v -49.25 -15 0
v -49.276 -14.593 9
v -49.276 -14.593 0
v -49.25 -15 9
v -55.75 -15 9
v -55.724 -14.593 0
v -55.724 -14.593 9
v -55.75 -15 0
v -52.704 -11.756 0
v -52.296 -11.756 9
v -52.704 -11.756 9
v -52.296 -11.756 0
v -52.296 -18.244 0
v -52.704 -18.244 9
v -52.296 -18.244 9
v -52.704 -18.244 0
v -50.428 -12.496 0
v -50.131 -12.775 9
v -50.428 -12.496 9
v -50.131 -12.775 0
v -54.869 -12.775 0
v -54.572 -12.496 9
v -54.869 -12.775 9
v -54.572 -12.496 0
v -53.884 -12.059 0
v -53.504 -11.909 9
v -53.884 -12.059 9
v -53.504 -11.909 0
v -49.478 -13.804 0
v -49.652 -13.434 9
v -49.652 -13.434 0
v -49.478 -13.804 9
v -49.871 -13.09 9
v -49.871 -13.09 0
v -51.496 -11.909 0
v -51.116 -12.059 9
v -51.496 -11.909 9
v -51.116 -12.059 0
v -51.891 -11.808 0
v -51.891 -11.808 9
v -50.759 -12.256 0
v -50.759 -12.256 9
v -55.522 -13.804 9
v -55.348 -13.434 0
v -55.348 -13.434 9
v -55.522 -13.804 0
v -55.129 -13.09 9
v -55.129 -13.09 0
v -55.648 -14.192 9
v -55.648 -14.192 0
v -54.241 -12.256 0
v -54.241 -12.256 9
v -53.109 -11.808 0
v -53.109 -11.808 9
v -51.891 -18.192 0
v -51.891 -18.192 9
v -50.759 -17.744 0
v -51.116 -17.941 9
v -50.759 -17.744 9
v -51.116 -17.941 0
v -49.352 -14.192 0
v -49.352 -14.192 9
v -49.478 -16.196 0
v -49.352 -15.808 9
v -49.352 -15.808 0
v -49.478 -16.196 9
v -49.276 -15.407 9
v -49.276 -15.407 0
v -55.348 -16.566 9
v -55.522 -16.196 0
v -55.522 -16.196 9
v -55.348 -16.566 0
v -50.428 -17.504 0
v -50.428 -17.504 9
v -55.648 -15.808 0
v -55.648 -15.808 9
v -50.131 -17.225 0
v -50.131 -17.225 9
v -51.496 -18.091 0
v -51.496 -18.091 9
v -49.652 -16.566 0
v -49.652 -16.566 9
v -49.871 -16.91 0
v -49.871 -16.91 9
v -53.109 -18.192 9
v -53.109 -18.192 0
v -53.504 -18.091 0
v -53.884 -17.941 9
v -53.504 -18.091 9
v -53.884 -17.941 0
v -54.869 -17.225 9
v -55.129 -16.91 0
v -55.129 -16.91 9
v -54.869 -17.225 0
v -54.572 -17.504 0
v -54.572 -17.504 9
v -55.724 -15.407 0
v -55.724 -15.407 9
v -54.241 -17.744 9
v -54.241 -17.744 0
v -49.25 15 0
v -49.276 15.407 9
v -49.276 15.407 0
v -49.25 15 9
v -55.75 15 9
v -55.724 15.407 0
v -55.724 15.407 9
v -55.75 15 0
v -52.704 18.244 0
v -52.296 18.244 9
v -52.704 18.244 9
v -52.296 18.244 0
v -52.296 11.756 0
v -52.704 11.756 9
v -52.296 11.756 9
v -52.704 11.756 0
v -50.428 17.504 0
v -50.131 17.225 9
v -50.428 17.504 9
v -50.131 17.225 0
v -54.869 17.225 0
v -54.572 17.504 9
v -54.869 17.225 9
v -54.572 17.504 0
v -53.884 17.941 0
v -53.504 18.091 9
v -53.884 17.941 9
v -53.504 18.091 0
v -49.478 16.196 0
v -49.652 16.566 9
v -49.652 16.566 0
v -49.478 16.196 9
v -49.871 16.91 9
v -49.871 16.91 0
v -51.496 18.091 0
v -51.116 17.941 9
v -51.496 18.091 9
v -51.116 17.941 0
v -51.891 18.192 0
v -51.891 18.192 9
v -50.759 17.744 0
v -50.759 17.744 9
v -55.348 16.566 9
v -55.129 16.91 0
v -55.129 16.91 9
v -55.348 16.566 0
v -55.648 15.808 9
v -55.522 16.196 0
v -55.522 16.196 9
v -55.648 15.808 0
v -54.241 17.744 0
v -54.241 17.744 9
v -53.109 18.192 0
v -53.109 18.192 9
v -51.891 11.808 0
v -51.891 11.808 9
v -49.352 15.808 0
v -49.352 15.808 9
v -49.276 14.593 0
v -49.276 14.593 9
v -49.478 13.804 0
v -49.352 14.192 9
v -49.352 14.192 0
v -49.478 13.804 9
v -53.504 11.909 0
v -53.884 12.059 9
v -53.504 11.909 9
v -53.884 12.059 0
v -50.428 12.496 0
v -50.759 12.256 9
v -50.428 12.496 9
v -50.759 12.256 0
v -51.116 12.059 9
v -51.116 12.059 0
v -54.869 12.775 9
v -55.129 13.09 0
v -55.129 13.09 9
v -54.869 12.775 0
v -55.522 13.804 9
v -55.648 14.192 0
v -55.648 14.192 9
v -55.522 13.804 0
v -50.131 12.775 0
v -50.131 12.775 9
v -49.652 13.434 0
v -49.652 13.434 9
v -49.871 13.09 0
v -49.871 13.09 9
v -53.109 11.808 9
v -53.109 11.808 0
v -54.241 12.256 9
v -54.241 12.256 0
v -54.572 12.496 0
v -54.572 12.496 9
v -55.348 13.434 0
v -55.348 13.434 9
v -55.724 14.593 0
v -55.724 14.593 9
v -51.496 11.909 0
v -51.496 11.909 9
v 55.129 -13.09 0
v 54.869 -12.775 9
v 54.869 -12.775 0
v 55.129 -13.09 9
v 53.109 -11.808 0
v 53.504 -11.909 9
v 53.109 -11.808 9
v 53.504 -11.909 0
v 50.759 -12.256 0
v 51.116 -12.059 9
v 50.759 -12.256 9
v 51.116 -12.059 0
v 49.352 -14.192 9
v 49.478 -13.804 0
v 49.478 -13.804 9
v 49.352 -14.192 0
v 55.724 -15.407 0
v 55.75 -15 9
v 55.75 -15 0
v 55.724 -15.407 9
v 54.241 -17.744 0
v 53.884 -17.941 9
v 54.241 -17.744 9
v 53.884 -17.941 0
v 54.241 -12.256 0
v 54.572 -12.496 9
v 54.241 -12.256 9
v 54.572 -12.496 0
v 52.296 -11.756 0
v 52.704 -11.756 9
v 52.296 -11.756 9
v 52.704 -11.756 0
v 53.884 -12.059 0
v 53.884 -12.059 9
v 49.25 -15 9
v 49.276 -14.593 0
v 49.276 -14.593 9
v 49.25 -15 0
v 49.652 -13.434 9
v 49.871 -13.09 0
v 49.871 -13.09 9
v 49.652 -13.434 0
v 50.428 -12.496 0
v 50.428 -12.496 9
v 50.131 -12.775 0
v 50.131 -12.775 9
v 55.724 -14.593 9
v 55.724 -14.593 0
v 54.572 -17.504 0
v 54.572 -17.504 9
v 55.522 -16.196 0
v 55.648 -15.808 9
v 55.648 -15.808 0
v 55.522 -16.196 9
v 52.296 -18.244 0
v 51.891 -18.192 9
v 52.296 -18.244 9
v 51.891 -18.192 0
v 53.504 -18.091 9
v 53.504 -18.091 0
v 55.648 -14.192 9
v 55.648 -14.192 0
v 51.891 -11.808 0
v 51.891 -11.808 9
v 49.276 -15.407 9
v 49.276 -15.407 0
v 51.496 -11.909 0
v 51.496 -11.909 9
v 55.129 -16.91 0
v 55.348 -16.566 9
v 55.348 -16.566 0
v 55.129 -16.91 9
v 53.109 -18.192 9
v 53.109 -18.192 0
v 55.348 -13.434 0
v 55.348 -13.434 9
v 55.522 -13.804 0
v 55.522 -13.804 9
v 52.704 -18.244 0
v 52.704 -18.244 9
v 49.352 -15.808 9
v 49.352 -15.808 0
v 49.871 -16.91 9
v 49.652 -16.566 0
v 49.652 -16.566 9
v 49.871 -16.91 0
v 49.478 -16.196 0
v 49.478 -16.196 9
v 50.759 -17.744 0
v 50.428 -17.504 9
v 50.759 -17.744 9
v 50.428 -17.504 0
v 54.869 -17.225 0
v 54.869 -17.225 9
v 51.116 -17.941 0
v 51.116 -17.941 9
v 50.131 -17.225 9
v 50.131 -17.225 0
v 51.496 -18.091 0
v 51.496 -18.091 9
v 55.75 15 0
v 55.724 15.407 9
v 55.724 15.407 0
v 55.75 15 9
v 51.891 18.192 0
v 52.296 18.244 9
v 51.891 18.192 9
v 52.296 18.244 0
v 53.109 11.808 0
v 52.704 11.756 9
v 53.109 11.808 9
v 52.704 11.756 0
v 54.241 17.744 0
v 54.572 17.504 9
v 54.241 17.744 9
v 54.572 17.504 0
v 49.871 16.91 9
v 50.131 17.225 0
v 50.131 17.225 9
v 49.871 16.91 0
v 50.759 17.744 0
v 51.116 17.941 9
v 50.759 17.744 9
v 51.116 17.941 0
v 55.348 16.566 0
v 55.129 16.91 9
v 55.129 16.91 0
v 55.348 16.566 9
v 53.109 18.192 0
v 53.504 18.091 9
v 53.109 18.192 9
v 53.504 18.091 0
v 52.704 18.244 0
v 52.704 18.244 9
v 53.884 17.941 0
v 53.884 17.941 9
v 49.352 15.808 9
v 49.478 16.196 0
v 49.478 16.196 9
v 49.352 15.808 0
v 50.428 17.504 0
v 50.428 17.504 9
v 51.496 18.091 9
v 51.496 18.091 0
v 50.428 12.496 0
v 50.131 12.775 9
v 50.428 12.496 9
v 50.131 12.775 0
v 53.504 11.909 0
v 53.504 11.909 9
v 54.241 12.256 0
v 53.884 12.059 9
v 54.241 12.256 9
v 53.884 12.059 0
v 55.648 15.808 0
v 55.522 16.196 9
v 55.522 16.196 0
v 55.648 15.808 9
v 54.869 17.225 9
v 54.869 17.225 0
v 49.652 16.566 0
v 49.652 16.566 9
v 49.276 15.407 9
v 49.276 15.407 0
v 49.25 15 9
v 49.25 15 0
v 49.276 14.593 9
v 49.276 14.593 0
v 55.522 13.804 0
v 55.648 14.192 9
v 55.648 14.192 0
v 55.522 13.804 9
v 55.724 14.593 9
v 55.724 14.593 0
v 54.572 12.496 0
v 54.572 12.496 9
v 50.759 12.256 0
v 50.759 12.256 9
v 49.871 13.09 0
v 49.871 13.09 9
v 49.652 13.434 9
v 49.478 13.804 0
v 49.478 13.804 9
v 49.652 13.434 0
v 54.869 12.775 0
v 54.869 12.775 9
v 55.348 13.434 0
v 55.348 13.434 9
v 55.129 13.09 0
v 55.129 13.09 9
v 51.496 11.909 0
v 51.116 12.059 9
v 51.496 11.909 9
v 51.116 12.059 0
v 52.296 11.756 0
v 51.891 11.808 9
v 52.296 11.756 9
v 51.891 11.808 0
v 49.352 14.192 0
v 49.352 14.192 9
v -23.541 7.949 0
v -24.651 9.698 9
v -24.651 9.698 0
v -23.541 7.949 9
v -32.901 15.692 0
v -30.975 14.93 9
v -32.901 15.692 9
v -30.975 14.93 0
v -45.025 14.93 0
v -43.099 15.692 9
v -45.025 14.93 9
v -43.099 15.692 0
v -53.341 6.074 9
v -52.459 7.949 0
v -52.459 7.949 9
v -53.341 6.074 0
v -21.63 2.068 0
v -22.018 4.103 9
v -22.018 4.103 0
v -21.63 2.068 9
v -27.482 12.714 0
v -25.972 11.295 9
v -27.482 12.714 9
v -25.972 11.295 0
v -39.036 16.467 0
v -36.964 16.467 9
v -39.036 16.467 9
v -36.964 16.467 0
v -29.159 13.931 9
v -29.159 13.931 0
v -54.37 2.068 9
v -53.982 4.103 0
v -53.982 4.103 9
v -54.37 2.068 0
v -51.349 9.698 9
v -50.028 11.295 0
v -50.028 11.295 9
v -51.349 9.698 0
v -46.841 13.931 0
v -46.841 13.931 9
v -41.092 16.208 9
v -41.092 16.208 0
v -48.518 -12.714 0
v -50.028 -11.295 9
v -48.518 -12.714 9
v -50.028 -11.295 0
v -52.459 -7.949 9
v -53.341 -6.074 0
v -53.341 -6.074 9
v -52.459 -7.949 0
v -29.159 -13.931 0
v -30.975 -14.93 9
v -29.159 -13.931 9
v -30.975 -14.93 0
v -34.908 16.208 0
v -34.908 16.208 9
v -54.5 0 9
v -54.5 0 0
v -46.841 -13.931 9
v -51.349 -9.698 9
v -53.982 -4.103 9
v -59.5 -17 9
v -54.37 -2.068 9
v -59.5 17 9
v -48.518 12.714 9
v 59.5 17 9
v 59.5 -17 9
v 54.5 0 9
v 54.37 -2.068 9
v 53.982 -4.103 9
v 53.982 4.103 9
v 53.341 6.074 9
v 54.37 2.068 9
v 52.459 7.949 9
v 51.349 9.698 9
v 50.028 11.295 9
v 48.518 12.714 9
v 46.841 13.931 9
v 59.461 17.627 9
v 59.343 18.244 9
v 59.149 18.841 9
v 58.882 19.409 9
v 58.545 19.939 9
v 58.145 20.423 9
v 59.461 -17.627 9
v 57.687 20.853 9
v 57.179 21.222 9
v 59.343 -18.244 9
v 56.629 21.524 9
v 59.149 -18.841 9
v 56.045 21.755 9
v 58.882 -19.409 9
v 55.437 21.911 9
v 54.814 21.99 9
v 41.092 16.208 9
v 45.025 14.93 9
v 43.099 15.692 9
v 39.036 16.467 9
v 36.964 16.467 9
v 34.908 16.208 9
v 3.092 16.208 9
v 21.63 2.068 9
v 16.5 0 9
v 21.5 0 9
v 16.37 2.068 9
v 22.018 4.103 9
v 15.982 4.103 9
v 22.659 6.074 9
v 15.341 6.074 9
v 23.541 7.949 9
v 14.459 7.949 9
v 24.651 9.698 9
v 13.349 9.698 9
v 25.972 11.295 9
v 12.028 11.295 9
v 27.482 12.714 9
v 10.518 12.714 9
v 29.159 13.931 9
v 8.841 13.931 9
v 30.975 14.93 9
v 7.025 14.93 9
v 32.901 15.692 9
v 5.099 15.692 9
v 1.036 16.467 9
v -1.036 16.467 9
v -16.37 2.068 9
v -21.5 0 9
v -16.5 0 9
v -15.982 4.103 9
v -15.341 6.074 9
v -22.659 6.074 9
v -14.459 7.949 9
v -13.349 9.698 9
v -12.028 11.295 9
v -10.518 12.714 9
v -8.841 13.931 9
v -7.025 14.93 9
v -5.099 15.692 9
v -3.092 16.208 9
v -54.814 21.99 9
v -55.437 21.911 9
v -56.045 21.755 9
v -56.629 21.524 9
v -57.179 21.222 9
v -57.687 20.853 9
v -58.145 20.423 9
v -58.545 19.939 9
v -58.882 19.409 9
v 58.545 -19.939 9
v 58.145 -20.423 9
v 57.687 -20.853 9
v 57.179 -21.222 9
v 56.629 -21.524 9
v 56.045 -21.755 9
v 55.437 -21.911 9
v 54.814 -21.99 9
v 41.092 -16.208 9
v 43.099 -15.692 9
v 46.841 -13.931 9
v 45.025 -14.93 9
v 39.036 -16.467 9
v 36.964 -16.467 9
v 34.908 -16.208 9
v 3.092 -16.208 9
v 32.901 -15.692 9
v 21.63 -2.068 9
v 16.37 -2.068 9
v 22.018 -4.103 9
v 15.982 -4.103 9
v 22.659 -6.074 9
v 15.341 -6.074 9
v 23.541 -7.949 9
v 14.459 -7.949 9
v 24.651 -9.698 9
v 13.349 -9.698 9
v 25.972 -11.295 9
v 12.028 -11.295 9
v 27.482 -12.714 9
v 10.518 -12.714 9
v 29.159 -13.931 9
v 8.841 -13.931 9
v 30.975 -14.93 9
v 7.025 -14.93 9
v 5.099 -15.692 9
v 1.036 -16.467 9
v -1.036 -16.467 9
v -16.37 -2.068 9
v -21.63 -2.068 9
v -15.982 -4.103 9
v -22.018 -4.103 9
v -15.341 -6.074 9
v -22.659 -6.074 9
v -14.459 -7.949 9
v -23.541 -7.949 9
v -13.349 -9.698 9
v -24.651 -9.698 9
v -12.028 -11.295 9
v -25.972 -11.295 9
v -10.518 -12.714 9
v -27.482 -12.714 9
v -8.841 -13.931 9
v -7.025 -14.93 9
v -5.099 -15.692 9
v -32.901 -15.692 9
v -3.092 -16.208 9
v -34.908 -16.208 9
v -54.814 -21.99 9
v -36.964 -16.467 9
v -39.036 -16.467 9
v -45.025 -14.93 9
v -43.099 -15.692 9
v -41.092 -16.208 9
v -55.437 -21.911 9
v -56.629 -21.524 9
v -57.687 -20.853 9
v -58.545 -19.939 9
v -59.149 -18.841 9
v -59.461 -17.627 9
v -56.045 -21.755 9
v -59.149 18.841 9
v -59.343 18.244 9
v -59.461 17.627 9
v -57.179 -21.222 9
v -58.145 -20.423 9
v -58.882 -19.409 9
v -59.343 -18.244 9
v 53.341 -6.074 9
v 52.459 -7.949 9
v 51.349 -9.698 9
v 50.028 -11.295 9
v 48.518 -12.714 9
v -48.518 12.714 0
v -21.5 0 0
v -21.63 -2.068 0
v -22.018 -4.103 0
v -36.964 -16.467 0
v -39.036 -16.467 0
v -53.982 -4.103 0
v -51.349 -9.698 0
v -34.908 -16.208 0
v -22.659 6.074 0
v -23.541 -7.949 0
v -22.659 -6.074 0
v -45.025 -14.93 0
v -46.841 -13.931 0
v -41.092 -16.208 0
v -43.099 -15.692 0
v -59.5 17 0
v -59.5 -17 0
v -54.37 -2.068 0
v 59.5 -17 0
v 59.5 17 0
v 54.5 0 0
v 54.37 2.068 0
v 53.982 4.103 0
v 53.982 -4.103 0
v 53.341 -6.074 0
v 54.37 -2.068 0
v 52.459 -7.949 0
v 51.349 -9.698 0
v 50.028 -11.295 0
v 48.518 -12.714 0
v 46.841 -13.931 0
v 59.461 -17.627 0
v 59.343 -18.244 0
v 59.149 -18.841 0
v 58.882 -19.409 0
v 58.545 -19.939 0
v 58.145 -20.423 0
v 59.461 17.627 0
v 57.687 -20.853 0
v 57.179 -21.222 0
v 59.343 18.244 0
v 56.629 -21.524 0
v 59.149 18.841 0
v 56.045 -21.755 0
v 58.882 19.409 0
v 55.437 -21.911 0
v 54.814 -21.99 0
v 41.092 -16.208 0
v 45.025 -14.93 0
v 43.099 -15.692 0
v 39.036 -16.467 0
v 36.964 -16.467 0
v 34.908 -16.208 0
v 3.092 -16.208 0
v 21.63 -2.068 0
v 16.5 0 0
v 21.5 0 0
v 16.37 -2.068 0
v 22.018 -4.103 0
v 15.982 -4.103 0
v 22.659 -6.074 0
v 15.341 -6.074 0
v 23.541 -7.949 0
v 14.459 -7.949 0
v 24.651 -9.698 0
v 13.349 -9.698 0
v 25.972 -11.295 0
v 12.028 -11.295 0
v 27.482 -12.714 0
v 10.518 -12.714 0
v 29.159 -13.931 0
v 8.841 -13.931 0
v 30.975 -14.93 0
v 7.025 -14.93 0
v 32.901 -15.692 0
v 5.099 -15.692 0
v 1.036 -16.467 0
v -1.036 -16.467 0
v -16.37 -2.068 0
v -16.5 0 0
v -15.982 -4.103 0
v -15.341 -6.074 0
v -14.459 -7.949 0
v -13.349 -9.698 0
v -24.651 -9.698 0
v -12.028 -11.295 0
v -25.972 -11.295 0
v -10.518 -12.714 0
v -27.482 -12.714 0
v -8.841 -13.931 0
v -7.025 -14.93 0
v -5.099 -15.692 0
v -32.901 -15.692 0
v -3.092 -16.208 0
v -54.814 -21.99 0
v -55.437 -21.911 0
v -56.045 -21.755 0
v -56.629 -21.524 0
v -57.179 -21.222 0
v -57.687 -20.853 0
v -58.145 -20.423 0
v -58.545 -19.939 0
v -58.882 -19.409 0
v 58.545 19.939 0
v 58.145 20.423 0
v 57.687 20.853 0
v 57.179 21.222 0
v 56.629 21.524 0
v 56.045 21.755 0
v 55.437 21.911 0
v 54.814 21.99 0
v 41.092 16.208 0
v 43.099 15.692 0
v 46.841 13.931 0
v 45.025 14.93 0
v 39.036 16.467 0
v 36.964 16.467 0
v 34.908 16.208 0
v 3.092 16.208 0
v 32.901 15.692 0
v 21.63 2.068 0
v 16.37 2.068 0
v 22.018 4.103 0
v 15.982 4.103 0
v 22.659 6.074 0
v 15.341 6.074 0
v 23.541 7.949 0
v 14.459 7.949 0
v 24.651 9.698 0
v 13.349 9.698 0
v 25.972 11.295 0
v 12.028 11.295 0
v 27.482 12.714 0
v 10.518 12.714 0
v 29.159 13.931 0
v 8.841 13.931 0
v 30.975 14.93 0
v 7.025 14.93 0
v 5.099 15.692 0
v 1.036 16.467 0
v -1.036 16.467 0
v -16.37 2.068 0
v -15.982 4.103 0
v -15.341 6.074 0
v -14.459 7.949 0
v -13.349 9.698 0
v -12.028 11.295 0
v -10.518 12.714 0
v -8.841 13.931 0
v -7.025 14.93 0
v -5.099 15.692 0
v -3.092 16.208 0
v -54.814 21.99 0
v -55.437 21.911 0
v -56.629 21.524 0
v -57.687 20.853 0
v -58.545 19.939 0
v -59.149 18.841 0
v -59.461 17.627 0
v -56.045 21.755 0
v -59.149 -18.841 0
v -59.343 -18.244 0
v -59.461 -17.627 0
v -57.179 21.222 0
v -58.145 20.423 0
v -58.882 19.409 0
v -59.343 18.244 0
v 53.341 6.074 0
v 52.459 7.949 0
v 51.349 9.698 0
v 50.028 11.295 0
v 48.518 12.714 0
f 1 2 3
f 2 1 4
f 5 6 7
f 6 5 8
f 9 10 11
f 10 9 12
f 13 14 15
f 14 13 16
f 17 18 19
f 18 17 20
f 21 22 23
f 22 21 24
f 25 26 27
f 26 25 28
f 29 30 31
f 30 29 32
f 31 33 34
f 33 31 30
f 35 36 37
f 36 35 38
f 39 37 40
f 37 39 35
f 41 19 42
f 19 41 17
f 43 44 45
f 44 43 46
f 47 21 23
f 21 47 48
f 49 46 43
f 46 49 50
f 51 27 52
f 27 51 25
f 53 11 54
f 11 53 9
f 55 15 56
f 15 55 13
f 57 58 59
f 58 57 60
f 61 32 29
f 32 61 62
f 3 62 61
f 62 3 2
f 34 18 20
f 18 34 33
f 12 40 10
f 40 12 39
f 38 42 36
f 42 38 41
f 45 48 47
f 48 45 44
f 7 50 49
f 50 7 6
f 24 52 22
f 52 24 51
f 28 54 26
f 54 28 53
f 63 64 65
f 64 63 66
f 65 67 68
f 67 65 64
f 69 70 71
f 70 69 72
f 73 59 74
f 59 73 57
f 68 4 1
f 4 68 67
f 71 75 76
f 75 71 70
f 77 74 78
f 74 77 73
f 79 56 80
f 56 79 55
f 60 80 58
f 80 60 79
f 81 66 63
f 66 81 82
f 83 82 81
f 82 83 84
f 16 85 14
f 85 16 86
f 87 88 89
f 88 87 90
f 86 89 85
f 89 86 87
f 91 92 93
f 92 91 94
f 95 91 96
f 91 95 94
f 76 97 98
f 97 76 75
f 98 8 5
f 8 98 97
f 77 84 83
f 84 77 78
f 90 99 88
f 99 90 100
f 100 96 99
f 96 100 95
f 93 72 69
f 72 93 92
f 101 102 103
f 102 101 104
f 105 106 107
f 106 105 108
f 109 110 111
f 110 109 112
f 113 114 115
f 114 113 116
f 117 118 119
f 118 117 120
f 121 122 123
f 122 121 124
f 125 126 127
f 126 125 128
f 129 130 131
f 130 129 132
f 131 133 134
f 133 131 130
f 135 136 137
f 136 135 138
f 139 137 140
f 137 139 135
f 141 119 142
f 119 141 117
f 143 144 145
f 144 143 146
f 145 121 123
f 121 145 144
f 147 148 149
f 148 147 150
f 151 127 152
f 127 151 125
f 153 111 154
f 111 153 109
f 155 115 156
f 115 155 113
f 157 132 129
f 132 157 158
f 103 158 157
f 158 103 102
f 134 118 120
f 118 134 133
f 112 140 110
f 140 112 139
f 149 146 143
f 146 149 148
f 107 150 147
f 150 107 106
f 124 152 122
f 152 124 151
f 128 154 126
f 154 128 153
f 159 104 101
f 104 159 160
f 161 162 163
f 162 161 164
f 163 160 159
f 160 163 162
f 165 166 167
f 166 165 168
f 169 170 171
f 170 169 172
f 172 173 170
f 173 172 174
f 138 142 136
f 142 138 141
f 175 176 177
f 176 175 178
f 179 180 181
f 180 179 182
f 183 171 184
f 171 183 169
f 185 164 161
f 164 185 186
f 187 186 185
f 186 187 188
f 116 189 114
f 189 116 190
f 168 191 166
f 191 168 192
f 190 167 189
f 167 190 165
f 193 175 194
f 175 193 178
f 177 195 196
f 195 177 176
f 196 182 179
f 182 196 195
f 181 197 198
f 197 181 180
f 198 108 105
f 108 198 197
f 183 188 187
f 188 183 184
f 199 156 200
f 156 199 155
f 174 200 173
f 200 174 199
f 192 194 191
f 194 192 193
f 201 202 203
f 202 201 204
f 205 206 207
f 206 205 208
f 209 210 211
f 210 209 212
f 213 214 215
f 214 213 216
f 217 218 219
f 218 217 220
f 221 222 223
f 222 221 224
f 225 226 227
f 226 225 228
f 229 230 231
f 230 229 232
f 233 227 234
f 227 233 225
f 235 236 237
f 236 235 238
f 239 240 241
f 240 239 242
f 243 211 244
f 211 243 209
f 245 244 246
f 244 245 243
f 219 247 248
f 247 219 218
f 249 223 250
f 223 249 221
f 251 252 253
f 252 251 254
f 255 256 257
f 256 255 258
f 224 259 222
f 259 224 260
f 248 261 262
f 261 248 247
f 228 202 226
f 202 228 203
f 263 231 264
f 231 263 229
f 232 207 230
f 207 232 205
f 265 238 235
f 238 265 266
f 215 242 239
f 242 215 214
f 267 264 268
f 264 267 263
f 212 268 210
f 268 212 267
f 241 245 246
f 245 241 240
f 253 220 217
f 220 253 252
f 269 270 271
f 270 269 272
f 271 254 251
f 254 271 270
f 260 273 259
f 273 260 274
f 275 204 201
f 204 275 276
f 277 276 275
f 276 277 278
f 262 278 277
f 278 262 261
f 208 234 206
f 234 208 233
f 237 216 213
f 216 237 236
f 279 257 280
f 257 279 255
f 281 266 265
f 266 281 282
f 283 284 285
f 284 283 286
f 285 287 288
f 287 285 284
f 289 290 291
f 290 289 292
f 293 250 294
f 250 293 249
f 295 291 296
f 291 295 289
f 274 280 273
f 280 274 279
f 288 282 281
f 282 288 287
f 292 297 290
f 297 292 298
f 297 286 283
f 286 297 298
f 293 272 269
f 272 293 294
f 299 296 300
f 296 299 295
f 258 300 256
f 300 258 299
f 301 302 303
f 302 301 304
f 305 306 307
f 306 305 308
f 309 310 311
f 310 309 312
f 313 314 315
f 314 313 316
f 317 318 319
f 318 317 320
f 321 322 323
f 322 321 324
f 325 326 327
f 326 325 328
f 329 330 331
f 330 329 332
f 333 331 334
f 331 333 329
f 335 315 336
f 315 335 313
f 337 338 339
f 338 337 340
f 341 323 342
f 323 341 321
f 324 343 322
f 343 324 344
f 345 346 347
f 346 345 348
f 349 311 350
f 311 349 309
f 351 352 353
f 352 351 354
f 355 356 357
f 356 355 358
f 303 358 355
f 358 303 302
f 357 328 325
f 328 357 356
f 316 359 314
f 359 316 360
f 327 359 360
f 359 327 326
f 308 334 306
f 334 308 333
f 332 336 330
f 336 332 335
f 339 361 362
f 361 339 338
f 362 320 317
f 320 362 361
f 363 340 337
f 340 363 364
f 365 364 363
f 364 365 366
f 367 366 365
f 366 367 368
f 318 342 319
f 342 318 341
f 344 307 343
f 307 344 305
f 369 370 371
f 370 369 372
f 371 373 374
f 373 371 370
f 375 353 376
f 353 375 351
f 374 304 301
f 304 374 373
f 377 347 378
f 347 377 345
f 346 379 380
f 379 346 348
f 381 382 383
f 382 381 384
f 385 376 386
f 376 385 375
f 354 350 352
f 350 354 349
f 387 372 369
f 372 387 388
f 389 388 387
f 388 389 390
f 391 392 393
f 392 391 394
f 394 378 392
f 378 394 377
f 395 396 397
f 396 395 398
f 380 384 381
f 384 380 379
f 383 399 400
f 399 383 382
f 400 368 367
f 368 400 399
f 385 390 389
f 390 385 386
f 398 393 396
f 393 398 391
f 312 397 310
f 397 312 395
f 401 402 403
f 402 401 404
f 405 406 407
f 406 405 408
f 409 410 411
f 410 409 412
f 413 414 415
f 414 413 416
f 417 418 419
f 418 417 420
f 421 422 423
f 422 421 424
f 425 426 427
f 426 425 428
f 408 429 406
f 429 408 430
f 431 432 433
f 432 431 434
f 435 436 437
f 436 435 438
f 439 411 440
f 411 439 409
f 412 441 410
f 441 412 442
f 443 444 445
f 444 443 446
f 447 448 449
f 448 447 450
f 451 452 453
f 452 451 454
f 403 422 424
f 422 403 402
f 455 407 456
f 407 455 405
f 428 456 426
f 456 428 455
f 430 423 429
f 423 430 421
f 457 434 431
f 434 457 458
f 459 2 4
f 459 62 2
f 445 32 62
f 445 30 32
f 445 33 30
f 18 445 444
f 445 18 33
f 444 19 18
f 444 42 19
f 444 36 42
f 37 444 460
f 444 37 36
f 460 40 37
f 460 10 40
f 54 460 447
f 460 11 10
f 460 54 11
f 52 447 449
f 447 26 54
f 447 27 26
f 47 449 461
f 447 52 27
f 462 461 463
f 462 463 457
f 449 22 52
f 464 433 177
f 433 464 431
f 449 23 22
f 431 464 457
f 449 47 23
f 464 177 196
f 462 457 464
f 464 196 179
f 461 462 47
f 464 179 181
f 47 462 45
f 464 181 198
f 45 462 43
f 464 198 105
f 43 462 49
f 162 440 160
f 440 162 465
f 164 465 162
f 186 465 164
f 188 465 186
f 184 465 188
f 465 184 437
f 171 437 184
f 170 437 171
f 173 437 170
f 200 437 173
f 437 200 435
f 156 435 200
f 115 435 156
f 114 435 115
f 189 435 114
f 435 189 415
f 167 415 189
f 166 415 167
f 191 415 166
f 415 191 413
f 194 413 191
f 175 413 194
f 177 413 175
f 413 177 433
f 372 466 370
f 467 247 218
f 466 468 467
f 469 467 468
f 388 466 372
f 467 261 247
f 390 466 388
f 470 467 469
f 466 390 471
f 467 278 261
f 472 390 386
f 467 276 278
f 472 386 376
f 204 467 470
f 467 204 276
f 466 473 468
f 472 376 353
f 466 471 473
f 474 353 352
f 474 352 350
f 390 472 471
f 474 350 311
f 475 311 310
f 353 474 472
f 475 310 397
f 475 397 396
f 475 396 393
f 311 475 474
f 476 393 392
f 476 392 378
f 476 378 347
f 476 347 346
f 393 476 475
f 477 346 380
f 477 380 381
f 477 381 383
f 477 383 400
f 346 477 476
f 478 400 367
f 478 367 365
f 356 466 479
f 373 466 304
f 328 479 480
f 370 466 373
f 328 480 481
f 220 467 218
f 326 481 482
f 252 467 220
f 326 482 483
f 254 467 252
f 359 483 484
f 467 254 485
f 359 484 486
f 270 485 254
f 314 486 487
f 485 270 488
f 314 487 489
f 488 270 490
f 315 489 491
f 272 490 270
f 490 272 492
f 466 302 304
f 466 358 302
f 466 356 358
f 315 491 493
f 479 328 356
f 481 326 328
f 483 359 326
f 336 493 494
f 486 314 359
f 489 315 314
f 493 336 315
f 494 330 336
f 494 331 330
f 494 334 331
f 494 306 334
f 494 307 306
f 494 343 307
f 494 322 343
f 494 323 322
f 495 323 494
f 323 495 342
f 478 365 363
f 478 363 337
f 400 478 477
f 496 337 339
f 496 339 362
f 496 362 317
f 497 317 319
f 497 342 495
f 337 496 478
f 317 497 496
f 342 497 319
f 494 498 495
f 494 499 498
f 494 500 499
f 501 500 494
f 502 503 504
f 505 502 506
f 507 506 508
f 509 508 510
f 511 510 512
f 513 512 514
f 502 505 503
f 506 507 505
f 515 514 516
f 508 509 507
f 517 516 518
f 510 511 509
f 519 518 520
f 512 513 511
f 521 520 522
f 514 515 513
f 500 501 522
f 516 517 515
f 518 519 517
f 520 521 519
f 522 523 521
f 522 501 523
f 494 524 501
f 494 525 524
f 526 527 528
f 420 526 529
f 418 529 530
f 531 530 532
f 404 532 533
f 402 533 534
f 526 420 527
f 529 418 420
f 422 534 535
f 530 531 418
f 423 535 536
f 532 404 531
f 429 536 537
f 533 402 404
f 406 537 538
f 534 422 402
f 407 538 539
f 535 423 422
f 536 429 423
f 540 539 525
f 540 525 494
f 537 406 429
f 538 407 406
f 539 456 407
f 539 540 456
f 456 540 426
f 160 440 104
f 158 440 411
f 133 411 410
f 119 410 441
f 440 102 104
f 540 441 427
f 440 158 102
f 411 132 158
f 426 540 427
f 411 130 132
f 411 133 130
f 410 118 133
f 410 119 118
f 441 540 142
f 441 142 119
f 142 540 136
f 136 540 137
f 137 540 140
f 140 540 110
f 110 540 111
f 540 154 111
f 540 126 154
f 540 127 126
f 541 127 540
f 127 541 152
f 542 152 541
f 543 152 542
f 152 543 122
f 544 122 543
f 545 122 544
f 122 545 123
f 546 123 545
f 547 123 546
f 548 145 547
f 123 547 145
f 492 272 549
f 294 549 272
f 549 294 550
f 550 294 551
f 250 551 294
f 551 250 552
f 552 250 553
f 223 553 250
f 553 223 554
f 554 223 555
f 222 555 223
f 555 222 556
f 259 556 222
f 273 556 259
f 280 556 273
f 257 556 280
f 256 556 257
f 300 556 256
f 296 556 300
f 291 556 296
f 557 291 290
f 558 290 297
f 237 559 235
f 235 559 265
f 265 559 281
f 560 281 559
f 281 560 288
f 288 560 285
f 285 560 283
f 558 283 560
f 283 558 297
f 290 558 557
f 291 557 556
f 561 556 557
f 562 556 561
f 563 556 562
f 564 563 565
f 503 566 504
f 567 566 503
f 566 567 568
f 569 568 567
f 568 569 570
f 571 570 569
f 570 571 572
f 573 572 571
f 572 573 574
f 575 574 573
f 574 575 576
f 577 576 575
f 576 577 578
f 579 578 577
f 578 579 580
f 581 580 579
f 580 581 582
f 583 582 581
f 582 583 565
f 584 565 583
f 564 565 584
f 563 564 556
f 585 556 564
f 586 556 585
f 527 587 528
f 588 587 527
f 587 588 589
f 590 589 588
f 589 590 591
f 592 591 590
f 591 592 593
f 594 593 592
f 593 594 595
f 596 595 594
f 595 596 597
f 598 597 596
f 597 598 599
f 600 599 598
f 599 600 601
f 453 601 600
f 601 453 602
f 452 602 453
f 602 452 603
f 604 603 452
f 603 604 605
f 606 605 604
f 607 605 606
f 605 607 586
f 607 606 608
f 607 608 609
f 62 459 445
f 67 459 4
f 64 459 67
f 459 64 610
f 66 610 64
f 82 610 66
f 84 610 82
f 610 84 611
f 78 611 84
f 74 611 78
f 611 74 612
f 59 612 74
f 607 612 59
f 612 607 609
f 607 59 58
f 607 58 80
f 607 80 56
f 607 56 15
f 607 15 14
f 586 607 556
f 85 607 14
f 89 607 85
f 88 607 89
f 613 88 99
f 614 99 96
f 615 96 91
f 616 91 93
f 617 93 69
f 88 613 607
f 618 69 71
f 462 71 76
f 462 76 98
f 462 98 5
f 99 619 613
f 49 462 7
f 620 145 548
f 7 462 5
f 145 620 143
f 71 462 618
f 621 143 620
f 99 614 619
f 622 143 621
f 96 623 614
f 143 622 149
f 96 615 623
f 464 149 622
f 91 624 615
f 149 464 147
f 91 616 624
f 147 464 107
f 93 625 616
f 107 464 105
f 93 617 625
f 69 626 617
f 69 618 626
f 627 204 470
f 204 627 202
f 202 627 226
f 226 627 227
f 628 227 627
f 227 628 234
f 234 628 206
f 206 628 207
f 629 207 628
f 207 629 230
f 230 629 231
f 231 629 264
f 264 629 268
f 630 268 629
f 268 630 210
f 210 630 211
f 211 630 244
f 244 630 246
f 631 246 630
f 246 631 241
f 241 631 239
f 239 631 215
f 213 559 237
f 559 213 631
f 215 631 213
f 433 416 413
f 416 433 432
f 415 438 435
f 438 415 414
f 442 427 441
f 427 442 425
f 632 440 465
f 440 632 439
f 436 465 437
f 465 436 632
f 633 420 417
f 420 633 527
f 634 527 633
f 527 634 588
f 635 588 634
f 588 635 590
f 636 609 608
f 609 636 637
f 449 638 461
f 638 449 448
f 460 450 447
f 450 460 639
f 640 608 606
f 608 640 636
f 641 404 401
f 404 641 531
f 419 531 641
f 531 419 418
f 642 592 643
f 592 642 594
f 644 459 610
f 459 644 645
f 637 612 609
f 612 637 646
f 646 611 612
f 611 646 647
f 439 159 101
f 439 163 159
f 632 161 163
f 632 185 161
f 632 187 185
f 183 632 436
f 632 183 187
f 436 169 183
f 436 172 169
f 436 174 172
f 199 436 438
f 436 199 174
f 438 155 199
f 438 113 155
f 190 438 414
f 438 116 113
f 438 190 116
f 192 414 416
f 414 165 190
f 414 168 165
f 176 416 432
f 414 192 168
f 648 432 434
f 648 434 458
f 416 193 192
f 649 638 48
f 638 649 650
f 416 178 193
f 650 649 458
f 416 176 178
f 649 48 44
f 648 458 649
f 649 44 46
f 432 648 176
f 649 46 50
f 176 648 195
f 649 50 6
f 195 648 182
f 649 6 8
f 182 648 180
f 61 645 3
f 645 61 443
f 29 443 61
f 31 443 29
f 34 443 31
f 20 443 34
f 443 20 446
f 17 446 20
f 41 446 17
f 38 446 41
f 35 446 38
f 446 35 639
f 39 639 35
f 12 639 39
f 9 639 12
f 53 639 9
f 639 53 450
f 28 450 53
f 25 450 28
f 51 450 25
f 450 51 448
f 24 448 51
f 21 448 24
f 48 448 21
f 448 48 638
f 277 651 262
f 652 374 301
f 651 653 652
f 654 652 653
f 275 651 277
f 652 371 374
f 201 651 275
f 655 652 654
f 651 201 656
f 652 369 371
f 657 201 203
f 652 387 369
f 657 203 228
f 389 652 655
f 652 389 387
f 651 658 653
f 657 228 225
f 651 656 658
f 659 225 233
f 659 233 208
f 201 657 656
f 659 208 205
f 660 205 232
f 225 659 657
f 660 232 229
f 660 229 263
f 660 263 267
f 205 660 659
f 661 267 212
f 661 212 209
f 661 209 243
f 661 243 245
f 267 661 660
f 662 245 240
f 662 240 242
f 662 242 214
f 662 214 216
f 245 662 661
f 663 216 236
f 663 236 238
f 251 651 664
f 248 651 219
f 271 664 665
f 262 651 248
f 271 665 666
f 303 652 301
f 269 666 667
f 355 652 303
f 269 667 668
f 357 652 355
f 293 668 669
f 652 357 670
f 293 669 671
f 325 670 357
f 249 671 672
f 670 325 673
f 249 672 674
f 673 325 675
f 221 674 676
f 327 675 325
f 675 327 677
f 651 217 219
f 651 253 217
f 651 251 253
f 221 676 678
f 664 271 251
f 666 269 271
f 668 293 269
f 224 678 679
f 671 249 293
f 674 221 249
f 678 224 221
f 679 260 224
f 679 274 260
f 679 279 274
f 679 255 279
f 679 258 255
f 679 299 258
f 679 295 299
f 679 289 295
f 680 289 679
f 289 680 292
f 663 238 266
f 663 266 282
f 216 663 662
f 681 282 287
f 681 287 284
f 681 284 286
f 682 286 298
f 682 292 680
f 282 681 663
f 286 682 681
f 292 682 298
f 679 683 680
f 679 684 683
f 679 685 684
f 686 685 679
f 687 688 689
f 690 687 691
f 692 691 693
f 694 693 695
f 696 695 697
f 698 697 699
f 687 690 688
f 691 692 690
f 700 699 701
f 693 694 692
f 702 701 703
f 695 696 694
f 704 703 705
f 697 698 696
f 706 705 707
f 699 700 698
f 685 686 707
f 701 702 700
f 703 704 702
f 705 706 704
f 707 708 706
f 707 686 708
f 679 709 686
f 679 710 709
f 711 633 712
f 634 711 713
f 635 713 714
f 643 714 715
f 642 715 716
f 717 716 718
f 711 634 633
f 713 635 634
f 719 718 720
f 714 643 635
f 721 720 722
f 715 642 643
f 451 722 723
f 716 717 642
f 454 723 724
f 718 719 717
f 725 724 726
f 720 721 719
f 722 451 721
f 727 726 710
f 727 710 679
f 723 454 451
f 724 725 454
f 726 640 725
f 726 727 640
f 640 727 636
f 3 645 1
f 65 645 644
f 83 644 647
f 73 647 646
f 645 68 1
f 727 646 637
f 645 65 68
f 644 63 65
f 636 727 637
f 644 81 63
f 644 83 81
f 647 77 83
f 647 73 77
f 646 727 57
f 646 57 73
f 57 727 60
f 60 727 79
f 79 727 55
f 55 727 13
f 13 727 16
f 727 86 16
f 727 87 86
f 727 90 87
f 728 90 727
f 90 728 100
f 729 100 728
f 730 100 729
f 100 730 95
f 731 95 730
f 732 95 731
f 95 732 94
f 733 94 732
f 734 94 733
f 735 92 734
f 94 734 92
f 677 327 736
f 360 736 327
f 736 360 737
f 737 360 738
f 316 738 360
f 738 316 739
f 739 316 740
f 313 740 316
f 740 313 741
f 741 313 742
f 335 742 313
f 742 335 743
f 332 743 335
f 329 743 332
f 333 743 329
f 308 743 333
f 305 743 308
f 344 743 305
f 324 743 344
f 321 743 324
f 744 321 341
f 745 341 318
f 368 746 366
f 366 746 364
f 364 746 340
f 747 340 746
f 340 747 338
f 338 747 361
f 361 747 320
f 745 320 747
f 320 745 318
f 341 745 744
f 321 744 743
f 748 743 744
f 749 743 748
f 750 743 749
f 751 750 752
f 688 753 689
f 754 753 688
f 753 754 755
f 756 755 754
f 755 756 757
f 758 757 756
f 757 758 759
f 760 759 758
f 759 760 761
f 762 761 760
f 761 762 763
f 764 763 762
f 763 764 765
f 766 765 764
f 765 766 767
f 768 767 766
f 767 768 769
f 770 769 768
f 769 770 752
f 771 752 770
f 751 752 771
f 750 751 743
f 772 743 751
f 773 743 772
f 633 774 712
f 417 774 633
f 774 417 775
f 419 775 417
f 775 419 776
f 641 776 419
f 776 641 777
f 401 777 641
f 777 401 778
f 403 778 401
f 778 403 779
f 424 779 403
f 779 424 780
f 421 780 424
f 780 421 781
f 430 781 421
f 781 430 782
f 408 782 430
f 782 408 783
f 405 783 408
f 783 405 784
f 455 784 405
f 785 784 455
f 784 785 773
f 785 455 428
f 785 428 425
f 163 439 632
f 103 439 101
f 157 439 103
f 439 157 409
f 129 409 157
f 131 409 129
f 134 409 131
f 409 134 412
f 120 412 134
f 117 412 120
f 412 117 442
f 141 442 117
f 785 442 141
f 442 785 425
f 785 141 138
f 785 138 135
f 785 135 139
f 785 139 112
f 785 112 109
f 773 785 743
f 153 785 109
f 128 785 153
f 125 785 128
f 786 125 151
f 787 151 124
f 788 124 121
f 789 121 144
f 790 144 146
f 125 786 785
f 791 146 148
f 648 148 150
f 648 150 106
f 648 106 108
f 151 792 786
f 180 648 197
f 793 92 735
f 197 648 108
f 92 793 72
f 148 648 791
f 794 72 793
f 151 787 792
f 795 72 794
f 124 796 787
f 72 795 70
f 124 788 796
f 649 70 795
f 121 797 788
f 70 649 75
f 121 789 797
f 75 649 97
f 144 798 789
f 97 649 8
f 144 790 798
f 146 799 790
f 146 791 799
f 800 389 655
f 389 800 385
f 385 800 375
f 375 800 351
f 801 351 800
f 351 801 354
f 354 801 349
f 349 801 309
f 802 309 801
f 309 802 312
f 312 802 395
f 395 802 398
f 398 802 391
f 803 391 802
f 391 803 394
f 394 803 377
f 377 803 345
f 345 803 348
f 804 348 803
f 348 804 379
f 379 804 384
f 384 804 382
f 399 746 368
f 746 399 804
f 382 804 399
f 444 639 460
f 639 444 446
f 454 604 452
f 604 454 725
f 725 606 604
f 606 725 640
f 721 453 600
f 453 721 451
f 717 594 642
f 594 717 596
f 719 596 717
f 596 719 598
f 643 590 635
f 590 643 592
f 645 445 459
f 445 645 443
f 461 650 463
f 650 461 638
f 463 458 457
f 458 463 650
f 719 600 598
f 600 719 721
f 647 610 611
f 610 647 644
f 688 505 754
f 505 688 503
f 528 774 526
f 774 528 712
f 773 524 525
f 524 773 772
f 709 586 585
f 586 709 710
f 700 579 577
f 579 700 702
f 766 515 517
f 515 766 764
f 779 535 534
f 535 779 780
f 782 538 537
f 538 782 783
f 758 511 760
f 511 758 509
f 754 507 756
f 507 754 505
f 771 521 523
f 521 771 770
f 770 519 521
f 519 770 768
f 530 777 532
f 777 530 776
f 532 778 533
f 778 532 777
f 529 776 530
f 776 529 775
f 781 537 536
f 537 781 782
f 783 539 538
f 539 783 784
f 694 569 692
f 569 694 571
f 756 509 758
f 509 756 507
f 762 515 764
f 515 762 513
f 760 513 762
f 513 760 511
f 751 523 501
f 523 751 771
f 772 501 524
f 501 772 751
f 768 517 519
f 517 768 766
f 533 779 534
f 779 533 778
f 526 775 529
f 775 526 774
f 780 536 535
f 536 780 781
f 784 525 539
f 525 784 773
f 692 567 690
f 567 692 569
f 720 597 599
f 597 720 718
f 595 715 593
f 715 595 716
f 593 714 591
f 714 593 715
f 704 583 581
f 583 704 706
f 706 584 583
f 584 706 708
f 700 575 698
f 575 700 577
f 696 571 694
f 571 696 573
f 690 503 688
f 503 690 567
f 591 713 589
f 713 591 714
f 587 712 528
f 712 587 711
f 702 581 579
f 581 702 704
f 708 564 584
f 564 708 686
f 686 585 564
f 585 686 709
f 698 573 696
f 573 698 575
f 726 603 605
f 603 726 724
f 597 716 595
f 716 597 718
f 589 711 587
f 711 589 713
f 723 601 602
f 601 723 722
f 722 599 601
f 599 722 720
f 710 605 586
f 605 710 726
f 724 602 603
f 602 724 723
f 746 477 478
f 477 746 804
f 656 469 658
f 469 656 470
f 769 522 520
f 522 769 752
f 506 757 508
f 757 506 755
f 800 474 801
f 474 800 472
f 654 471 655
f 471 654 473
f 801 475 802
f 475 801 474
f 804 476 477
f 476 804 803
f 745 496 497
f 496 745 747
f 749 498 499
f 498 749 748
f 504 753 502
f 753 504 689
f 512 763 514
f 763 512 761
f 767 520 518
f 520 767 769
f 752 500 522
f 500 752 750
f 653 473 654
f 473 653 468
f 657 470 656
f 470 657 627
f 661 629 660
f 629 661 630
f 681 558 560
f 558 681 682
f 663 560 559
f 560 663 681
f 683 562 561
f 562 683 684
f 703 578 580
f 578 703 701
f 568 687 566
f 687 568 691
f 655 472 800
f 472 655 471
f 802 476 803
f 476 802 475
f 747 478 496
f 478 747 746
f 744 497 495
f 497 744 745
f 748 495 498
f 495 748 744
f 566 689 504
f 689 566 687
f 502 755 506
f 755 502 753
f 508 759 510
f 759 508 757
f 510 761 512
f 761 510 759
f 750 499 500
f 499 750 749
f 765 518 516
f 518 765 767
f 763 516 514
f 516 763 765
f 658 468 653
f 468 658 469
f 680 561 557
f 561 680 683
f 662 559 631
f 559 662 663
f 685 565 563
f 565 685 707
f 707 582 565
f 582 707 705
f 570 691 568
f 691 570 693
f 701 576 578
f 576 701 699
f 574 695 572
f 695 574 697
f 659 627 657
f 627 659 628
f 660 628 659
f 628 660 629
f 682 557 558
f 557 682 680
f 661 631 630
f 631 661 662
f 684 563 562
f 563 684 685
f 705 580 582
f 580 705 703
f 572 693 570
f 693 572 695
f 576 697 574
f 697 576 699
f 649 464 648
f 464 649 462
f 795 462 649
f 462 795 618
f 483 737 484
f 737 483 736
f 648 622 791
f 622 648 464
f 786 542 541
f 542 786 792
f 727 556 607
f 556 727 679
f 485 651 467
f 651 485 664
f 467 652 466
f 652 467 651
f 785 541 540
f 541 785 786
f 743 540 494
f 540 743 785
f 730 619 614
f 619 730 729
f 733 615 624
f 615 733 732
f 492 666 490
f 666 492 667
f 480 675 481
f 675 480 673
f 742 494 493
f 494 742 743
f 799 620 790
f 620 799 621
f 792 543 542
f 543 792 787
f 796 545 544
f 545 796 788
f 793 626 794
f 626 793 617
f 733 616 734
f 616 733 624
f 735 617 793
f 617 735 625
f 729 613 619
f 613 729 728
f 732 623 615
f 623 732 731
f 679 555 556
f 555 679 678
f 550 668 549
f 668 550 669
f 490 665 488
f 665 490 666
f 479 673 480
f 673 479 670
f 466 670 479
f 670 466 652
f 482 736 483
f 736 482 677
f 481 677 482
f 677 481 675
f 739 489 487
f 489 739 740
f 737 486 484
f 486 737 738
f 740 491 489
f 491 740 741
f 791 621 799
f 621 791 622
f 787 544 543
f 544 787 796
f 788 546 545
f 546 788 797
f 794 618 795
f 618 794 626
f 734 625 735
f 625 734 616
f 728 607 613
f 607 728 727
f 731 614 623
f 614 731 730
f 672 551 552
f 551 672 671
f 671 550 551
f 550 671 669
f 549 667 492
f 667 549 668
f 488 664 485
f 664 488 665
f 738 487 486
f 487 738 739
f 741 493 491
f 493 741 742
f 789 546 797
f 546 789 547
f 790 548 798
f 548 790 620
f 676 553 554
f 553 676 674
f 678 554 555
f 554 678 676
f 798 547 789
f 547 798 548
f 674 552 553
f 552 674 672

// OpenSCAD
$fn = 50;


difference() {
	union() {
		hull() {
			translate(v = [-54.5000000000, 17.0000000000, 0]) {
				cylinder(h = 9, r = 5);
			}
			translate(v = [54.5000000000, 17.0000000000, 0]) {
				cylinder(h = 9, r = 5);
			}
			translate(v = [-54.5000000000, -17.0000000000, 0]) {
				cylinder(h = 9, r = 5);
			}
			translate(v = [54.5000000000, -17.0000000000, 0]) {
				cylinder(h = 9, r = 5);
			}
		}
	}
	union() {
		#translate(v = [-52.5000000000, -15.0000000000, -100.0000000000]) {
			cylinder(h = 200, r = 3.2500000000);
		}
		#translate(v = [-52.5000000000, 15.0000000000, -100.0000000000]) {
			cylinder(h = 200, r = 3.2500000000);
		}
		#translate(v = [52.5000000000, -15.0000000000, -100.0000000000]) {
			cylinder(h = 200, r = 3.2500000000);
		}
		#translate(v = [52.5000000000, 15.0000000000, -100.0000000000]) {
			cylinder(h = 200, r = 3.2500000000);
		}
		#translate(v = [-38.0000000000, 0, 0]) {
			cylinder(h = 9, r = 16.5000000000);
		}
		#cylinder(h = 9, r = 16.5000000000);
		#translate(v = [38.0000000000, 0, 0]) {
			cylinder(h = 9, r = 16.5000000000);
		}
	}
}
